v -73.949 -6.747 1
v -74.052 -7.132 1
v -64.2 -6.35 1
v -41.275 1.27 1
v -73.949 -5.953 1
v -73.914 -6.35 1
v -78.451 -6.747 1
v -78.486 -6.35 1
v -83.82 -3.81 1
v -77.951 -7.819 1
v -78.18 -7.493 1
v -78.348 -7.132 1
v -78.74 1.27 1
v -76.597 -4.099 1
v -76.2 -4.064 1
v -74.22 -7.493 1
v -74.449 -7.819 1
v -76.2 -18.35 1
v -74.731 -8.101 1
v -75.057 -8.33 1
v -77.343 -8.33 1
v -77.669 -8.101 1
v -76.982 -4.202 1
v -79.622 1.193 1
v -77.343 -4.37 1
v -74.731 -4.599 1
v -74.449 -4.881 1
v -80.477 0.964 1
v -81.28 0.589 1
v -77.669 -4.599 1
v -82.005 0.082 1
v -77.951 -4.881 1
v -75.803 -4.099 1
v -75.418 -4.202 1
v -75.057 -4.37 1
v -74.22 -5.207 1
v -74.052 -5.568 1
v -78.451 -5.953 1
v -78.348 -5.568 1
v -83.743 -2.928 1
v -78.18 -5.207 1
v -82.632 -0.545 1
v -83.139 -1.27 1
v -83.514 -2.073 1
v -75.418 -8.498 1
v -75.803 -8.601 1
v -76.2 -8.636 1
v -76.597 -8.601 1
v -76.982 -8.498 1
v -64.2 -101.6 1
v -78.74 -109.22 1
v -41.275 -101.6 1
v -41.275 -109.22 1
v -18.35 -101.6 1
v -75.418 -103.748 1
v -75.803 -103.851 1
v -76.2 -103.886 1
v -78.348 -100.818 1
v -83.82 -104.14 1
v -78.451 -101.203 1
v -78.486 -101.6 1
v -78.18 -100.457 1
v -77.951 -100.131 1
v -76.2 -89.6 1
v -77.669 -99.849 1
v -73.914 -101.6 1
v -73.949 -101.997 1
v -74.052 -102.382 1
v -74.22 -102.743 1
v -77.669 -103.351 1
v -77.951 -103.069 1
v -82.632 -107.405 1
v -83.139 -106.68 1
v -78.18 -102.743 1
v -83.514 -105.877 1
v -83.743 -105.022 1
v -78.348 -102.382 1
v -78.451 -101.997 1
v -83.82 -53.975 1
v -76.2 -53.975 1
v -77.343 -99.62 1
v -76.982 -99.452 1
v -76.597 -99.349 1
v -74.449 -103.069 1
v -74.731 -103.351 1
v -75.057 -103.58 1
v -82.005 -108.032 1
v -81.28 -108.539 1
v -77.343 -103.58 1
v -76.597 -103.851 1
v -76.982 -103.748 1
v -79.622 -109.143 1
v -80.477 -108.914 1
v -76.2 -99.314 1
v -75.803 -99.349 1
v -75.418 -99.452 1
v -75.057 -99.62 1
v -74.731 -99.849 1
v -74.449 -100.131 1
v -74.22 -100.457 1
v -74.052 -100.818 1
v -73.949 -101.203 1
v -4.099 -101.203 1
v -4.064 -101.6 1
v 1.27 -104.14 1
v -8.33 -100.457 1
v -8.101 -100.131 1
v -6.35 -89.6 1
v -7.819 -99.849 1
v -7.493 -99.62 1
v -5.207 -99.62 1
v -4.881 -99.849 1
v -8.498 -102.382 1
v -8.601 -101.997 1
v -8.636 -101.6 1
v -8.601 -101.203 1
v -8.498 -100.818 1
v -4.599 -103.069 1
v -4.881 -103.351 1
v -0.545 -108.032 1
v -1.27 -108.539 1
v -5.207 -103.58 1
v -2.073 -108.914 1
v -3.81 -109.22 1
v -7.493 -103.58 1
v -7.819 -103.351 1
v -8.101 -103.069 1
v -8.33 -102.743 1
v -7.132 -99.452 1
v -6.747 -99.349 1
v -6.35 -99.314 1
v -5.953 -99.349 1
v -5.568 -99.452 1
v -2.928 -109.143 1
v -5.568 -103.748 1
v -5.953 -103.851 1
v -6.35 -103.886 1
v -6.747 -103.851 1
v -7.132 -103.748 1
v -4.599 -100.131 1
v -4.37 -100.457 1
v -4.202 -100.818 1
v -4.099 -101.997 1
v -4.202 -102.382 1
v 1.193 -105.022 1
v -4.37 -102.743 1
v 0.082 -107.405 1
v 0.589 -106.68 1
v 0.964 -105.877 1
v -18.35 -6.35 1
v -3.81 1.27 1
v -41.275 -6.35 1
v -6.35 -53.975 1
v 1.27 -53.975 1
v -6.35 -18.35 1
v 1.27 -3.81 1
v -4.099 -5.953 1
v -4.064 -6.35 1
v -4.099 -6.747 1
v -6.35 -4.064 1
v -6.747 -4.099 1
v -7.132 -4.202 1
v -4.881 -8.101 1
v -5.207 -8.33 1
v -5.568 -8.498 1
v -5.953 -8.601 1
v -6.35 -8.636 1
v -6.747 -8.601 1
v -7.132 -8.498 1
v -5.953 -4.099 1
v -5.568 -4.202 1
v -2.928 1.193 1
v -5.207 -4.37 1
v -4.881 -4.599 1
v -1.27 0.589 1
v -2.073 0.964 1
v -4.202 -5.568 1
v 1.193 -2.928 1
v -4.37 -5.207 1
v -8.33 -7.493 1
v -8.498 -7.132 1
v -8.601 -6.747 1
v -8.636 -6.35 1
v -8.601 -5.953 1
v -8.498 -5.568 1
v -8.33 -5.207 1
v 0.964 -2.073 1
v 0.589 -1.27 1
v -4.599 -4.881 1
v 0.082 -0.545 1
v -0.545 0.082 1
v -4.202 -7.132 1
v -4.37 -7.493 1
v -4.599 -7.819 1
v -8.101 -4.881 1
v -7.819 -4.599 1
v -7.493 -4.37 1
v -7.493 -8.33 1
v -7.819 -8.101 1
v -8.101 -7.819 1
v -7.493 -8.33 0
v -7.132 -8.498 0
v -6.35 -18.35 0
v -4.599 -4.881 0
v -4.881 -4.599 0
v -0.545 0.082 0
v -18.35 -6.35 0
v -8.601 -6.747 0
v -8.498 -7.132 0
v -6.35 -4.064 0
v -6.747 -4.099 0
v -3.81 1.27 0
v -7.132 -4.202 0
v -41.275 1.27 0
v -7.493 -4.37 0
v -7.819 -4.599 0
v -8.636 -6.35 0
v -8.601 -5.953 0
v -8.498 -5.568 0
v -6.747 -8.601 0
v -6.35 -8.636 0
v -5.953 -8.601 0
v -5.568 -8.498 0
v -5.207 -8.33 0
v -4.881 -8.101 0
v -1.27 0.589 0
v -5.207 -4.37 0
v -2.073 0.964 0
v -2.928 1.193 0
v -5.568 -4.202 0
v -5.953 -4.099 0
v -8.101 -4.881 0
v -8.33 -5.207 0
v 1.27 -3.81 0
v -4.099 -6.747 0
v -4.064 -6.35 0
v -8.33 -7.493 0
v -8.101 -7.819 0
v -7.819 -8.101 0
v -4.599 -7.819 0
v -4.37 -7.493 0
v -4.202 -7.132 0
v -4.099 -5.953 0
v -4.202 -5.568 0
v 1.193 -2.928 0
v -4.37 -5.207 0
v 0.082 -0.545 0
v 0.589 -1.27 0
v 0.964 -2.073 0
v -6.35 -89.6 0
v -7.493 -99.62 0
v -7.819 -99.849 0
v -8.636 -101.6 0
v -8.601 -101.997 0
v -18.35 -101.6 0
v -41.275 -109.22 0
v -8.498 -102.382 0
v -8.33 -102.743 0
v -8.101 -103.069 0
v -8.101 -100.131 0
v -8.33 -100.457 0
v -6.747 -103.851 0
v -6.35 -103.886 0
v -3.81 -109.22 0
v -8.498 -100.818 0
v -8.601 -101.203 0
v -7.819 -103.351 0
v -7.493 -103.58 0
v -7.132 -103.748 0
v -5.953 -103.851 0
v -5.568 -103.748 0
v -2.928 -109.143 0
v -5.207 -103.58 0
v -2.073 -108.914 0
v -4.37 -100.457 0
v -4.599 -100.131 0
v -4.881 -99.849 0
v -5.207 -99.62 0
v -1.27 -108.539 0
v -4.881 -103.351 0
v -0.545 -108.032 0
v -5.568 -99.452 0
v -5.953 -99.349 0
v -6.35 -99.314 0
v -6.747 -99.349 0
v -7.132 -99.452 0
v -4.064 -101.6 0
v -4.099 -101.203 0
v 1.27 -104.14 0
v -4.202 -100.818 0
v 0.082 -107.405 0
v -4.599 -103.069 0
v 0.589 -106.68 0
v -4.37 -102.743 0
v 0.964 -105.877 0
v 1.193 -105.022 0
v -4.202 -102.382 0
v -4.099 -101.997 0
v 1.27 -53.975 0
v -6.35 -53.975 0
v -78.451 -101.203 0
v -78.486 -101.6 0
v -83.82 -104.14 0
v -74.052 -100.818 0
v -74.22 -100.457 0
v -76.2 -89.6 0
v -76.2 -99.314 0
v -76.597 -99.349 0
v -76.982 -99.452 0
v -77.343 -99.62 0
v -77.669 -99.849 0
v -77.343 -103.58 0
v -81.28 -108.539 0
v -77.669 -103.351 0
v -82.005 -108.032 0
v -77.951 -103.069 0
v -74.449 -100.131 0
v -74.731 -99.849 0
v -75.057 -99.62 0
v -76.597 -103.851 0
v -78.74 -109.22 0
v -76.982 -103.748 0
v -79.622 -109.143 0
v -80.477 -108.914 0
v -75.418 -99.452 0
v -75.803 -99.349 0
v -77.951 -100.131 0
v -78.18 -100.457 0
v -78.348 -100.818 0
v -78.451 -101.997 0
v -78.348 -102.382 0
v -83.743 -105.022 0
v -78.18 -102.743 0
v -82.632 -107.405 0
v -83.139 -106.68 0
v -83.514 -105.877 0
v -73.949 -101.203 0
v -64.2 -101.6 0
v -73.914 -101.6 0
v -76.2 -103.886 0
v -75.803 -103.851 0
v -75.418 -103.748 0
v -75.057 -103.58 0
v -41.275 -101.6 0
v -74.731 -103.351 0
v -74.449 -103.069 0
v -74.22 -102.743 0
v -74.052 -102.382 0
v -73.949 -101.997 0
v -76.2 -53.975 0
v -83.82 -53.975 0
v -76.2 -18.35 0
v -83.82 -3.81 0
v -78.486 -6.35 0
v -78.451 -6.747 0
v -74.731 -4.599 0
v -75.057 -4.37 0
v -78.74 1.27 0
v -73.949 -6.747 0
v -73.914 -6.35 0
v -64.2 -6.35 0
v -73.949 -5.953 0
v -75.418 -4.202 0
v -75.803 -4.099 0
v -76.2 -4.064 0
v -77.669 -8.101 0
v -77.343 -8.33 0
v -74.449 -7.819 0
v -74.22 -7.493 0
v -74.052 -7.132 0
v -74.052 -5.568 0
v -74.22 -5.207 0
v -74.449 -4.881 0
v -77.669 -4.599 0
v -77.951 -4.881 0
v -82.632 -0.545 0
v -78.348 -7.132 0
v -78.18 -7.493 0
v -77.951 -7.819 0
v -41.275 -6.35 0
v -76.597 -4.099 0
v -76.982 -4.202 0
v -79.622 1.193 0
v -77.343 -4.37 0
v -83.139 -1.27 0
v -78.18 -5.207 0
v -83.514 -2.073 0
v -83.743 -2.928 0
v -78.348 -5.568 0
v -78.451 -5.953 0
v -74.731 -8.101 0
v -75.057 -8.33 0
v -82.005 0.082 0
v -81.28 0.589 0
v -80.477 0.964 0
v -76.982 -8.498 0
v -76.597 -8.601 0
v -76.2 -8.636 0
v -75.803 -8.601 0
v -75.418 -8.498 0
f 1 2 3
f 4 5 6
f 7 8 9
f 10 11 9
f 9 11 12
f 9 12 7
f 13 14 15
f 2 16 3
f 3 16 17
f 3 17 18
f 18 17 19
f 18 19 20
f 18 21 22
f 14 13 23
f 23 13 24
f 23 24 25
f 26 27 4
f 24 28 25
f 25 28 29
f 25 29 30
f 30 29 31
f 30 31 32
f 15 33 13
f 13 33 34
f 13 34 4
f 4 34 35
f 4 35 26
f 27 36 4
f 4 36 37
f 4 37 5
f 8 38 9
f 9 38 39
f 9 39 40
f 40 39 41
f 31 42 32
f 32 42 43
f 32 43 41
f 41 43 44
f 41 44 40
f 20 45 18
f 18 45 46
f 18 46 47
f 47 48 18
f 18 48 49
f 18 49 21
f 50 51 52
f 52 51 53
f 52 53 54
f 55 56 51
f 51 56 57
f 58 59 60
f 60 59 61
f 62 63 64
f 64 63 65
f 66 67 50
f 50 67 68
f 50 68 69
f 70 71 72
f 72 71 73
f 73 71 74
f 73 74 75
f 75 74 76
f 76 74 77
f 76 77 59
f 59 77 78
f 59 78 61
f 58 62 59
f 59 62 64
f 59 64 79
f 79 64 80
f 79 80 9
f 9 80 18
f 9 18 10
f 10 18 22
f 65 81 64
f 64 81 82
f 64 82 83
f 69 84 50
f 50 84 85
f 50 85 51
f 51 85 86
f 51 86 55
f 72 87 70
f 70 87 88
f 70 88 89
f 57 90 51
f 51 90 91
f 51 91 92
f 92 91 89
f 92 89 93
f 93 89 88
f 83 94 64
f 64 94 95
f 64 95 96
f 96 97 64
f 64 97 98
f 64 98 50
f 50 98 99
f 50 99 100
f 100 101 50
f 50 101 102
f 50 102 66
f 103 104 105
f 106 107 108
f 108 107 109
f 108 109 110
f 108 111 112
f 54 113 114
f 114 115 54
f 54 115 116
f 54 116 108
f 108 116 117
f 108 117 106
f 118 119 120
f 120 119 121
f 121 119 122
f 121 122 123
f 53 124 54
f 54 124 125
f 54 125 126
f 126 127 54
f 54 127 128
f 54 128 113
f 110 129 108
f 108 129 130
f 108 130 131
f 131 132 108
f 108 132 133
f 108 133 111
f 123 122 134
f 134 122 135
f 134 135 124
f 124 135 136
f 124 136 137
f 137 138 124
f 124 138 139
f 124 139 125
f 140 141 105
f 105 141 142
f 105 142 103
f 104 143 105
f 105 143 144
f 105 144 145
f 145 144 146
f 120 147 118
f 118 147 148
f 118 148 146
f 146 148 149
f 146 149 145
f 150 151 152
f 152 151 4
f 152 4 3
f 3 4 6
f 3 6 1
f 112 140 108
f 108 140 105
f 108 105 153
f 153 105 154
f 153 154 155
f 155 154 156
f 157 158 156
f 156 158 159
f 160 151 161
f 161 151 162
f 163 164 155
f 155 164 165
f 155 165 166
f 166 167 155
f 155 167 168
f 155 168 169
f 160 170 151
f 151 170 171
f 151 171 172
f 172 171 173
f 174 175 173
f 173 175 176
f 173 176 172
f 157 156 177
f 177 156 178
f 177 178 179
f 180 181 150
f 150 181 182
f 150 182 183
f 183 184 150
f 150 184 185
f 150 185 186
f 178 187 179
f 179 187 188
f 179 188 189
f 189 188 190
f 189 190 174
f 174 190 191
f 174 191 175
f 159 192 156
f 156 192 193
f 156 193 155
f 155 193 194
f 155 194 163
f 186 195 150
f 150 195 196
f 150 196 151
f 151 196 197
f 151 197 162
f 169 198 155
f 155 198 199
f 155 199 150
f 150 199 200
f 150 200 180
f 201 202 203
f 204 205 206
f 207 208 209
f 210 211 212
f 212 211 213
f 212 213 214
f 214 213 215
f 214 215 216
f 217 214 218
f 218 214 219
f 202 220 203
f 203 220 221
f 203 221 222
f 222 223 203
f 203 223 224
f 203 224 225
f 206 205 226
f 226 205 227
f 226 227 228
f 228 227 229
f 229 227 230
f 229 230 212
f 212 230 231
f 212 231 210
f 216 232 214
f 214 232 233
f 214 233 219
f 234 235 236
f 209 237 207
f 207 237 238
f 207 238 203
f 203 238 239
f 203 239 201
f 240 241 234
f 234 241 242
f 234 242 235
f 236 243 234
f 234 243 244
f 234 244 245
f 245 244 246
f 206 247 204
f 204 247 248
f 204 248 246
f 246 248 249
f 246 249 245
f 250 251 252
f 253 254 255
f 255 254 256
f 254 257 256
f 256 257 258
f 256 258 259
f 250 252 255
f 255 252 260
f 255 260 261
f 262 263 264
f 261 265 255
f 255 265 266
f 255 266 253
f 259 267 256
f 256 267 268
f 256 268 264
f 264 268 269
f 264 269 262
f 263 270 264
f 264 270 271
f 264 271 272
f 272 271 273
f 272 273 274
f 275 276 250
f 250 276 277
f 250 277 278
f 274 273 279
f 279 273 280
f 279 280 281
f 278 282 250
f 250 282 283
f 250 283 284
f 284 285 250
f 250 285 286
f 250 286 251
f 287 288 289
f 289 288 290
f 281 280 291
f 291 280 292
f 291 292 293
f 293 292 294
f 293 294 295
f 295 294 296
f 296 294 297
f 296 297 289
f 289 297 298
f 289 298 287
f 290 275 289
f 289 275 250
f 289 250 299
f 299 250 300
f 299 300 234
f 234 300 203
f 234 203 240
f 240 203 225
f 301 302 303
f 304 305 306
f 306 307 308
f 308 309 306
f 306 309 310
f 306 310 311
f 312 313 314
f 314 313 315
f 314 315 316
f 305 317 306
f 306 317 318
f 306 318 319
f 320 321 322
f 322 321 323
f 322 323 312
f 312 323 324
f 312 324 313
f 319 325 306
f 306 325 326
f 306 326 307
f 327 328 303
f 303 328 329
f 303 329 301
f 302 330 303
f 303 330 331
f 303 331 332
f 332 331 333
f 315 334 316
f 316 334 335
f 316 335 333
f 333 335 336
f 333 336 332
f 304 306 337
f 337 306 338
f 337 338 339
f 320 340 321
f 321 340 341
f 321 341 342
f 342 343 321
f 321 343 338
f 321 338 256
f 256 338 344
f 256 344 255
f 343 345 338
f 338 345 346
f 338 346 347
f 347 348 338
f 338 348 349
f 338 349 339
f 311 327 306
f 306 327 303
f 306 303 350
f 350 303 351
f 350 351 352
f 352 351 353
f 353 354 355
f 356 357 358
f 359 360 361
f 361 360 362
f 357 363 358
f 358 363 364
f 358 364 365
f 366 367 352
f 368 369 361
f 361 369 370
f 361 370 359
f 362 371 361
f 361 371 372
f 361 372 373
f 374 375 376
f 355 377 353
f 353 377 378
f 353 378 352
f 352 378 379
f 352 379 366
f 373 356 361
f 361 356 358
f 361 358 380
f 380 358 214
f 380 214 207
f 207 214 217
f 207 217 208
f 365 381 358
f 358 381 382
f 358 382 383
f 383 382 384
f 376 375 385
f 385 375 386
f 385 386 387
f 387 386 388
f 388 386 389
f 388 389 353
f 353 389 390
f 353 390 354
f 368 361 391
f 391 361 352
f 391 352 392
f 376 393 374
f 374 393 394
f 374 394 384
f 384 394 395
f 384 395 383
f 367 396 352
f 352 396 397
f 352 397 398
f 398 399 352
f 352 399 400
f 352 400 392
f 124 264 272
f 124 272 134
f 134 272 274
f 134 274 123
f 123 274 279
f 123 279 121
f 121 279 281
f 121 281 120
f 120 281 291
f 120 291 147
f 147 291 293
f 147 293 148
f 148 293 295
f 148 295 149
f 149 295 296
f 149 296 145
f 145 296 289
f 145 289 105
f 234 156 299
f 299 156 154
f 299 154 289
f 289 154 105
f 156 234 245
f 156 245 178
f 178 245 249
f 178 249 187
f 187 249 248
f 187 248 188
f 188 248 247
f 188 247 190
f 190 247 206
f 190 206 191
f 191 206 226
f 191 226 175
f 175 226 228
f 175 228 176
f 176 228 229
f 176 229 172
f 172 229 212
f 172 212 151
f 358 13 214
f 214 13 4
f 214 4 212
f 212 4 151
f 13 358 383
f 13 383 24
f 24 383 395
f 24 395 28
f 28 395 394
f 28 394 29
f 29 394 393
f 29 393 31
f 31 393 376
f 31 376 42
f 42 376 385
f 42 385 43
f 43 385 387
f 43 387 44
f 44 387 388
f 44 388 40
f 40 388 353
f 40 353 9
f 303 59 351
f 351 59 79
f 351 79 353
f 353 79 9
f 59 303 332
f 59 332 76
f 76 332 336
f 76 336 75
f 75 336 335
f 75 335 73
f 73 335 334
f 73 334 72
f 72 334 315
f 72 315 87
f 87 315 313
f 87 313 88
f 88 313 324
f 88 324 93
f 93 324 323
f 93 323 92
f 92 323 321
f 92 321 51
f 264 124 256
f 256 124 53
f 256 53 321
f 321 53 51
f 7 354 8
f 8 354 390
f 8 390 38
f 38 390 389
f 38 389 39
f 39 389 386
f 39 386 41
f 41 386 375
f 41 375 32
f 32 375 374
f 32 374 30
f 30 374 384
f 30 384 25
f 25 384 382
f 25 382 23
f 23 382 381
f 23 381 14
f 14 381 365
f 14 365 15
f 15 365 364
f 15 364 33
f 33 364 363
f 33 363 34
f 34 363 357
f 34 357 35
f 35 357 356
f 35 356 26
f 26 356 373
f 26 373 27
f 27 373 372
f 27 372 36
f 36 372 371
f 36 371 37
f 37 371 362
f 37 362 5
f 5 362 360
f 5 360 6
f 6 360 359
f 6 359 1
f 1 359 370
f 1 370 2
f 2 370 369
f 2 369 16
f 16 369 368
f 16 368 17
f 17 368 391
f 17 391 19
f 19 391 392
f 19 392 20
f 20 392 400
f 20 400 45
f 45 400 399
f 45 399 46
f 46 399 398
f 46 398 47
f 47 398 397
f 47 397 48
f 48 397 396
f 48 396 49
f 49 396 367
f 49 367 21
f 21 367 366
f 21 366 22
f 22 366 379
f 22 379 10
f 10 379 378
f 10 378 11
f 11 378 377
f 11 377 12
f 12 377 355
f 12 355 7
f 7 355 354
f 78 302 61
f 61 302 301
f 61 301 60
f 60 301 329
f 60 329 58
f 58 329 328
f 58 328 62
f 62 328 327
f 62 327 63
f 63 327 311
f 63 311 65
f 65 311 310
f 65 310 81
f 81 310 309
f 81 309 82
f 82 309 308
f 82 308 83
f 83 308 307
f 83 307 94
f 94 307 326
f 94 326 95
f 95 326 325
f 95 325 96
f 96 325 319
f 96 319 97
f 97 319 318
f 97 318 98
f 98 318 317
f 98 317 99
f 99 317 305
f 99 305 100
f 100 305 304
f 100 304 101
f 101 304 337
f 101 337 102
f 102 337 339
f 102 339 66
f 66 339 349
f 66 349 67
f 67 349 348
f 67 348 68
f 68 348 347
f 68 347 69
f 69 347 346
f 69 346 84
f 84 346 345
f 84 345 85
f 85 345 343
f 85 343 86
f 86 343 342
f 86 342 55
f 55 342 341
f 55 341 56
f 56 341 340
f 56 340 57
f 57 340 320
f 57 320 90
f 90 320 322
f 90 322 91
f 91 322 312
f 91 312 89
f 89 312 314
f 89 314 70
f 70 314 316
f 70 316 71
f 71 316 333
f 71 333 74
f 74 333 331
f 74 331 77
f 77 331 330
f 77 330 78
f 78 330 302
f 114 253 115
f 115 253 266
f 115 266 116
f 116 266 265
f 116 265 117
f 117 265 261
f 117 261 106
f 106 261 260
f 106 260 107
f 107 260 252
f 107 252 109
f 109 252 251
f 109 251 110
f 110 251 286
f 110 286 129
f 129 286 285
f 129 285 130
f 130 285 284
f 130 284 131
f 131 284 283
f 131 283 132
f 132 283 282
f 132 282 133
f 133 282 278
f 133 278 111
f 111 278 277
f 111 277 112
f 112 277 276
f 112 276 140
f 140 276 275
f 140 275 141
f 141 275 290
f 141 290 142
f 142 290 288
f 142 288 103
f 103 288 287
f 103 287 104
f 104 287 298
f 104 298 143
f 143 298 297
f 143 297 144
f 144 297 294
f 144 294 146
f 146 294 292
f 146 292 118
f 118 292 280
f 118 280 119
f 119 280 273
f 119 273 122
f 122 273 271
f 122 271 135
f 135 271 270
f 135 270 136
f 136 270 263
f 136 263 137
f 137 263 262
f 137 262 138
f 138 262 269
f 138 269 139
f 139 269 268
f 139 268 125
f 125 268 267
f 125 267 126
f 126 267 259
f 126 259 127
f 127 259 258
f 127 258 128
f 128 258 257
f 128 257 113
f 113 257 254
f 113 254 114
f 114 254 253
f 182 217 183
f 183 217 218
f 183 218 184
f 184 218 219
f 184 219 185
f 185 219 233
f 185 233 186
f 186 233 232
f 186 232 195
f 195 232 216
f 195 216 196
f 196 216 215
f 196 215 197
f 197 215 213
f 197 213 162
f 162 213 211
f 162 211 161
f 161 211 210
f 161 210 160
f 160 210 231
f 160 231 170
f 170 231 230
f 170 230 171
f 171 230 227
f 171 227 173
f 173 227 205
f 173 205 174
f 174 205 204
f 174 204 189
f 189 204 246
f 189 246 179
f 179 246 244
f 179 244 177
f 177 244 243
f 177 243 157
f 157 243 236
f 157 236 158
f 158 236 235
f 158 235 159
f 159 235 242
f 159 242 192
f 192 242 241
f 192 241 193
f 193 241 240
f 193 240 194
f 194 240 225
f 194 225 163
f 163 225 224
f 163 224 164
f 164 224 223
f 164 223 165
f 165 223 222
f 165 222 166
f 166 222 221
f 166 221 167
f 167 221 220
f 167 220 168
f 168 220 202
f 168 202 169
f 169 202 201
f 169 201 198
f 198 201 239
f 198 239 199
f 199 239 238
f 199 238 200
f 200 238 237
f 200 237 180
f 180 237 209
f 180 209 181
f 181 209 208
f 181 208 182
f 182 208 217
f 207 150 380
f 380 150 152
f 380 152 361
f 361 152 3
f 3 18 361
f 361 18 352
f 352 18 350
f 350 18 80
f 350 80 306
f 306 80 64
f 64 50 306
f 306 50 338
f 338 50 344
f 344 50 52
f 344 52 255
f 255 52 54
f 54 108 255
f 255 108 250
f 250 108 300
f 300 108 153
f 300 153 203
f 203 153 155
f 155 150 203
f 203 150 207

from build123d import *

# Parameters (mm, degrees)
SKETCH1_R           = 2.286
BOSS_EXTRUDE1_DEPTH = 1


with BuildPart() as part:
    # Sketch1 → Boss-Extrude1 (new body)
    with BuildSketch(Plane.XY):
        with BuildLine():
            Line((1.27, -104.14), (1.27, -3.81))
            ThreePointArc((1.27, -3.81), (-0.217897552, -0.217897552), (-3.81, 1.27))
            Line((-3.81, 1.27), (-78.74, 1.27))
            ThreePointArc((-78.74, 1.27), (-82.332102448, -0.217897552), (-83.82, -3.81))
            Line((-83.82, -3.81), (-83.82, -104.14))
            ThreePointArc((-83.82, -104.14), (-82.332102448, -107.732102448), (-78.74, -109.22))
            Line((-78.74, -109.22), (-3.81, -109.22))
            ThreePointArc((-3.81, -109.22), (-0.217897552, -107.732102448), (1.27, -104.14))
        make_face()
        with Locations((-76.2, -6.35)):
            Circle(SKETCH1_R, mode=Mode.SUBTRACT)
        with Locations((-76.2, -101.6)):
            Circle(SKETCH1_R, mode=Mode.SUBTRACT)
        with Locations((-6.35, -101.6)):
            Circle(SKETCH1_R, mode=Mode.SUBTRACT)
        with Locations((-6.35, -6.35)):
            Circle(SKETCH1_R, mode=Mode.SUBTRACT)
        Polygon((-76.2, -18.35), (-64.2, -6.35), (-18.35, -6.35), (-6.35, -18.35), (-6.35, -89.6), (-18.35, -101.6), (-64.2, -101.6), (-76.2, -89.6), align=None, mode=Mode.SUBTRACT)
    extrude(amount=BOSS_EXTRUDE1_DEPTH)


solid = part.part
